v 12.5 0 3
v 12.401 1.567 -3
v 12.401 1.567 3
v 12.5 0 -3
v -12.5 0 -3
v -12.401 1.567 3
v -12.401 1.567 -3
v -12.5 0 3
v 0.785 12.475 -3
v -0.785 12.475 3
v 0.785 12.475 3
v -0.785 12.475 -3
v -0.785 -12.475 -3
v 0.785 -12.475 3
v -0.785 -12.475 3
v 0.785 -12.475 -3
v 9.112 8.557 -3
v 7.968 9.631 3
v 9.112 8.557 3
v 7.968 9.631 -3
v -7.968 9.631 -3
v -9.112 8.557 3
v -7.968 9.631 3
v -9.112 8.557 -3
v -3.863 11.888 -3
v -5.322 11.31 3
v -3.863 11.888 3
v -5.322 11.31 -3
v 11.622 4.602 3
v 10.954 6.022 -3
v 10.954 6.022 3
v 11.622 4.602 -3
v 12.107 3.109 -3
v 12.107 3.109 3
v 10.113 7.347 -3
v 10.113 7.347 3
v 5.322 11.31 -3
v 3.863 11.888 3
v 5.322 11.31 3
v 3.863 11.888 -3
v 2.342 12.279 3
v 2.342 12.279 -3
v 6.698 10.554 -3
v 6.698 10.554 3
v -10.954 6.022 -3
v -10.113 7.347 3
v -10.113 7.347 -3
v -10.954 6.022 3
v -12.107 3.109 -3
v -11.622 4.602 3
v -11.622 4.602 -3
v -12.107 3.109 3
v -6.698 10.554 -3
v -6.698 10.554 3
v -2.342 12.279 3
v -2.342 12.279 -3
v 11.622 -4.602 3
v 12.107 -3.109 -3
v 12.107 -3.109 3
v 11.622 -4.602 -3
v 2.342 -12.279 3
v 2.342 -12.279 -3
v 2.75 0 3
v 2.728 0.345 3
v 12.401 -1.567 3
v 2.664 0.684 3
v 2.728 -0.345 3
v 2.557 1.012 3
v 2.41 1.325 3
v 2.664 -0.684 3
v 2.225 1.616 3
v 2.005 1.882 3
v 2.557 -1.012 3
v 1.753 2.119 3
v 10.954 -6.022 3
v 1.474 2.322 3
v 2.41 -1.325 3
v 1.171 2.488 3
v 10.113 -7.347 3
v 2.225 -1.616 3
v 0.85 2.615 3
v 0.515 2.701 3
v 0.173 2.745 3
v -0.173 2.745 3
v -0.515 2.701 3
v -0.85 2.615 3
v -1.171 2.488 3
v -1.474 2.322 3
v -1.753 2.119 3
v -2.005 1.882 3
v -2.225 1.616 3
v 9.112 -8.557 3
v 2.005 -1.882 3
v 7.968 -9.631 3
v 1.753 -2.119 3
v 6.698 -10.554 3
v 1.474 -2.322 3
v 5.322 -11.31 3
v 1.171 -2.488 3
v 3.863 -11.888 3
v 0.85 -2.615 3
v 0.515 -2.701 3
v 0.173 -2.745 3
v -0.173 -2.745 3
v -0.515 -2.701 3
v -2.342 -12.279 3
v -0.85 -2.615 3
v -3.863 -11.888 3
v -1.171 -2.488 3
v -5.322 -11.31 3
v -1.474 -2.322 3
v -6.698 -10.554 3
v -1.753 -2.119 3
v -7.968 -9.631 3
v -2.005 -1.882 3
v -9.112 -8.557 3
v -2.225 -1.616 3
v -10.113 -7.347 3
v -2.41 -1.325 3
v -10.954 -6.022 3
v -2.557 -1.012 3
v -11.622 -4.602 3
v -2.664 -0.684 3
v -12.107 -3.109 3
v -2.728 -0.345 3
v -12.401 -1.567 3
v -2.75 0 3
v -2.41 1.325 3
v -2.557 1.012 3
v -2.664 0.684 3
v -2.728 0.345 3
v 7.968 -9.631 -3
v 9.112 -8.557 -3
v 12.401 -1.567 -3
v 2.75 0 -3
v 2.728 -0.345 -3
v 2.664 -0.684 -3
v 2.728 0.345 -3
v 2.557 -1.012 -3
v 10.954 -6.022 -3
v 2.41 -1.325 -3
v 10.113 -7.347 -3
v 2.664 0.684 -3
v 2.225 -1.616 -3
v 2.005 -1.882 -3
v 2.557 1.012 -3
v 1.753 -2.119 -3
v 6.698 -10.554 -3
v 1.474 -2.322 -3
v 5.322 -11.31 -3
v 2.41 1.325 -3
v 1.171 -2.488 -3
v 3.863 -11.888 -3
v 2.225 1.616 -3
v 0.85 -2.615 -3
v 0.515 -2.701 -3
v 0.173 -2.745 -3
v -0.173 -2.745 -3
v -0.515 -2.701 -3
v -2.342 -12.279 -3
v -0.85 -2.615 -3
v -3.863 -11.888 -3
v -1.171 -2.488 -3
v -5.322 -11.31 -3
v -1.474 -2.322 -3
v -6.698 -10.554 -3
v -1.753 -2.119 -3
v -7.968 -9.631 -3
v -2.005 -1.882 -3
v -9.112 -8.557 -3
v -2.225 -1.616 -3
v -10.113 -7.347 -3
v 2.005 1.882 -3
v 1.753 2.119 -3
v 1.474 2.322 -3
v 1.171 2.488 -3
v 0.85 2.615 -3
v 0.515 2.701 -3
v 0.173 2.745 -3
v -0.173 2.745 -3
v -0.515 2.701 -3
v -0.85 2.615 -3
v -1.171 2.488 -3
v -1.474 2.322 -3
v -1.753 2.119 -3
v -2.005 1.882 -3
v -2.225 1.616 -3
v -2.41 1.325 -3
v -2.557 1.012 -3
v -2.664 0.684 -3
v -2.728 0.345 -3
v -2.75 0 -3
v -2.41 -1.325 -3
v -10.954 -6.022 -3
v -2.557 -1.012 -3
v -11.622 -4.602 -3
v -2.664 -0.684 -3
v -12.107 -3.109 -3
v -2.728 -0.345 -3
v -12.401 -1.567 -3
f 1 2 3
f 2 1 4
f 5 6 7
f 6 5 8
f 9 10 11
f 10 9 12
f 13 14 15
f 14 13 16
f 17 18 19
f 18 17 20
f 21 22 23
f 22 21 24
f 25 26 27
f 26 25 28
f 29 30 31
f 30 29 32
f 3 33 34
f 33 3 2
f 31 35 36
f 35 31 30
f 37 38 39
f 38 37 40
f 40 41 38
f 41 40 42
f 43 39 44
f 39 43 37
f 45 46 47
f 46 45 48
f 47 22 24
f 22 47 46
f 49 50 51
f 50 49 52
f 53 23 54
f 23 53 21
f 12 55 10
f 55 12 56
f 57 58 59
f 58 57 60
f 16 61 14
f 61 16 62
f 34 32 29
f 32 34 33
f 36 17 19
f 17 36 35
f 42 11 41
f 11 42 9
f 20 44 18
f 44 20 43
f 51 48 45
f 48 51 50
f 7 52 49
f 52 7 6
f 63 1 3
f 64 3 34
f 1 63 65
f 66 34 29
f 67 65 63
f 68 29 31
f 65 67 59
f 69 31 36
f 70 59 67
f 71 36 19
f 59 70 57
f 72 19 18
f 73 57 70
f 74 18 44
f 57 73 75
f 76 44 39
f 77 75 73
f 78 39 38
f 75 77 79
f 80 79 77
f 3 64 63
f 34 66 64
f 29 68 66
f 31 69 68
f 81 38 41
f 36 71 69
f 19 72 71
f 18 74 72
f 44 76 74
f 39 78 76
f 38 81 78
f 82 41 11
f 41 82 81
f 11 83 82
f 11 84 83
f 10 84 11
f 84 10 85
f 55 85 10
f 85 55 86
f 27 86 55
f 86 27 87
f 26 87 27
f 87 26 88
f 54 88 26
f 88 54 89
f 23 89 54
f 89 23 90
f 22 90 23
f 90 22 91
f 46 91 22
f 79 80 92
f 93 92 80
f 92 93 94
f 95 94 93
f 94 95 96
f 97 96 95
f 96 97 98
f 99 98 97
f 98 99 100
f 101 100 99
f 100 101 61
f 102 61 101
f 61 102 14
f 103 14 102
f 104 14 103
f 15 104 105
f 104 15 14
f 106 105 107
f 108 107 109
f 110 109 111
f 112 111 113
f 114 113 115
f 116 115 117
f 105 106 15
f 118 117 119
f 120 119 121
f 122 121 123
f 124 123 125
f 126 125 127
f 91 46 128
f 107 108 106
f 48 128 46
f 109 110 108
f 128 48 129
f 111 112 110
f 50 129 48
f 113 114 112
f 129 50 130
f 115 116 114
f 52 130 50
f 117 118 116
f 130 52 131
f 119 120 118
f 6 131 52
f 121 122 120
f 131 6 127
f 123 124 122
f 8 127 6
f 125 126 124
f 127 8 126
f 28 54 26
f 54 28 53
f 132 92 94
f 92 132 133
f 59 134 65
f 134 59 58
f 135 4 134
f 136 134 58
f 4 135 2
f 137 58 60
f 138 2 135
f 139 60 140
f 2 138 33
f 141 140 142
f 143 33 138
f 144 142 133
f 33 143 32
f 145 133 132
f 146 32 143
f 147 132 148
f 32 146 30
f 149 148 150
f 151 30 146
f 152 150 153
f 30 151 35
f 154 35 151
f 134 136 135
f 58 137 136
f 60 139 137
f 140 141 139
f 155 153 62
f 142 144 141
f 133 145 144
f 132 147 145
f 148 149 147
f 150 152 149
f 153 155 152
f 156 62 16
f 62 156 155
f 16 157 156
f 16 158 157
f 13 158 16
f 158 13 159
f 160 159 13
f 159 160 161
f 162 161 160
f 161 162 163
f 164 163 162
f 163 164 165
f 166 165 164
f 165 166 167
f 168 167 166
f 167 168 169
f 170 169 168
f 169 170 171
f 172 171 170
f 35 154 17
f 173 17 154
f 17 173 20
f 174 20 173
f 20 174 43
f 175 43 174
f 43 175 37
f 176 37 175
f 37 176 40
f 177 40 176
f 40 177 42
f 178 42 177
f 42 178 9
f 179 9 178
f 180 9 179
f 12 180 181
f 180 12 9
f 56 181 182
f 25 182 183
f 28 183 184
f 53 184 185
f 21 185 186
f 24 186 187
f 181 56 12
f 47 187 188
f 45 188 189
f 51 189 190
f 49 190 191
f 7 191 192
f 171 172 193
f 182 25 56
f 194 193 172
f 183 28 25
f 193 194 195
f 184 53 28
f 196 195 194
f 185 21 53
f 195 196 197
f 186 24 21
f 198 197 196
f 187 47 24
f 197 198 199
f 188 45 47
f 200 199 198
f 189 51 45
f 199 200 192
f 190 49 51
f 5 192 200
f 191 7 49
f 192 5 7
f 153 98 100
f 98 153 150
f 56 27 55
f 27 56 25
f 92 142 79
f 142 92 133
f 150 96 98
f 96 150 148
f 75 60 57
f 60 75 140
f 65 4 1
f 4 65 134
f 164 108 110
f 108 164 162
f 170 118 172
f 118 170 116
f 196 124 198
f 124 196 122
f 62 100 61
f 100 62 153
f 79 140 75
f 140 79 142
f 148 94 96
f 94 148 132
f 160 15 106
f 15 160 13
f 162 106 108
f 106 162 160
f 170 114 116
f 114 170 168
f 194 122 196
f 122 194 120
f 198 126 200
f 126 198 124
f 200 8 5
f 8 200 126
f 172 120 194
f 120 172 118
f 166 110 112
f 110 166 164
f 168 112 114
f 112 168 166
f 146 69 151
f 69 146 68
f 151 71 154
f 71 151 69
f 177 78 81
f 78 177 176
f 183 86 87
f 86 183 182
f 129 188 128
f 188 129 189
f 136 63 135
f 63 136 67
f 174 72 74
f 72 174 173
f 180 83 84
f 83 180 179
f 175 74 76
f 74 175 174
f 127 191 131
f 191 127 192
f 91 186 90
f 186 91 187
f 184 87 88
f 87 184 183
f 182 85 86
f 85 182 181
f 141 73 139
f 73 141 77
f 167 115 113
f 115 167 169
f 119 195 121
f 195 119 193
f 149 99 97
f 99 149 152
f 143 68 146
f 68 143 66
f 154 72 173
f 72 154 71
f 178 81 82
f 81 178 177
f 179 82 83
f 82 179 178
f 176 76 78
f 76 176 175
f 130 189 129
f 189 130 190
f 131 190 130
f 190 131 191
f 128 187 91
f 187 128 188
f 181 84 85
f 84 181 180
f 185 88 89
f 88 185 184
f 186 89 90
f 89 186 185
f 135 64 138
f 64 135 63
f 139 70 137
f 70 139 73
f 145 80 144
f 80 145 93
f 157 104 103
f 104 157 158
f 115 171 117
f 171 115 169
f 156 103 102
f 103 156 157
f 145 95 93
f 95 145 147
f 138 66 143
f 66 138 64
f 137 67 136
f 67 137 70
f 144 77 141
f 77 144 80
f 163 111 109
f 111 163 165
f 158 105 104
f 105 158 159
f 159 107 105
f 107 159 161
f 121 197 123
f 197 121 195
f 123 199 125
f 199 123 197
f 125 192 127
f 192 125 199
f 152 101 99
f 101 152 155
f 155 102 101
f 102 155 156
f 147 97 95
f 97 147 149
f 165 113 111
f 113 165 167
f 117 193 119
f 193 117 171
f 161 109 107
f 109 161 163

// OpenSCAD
$fn = 50;


difference() {
	union() {
		translate(v = [0, 0, -3.0000000000]) {
			cylinder(h = 6, r = 12.5000000000);
		}
	}
	union() {
		translate(v = [0, 0, -100.0000000000]) {
			cylinder(h = 200, r = 2.7500000000);
		}
	}
}
